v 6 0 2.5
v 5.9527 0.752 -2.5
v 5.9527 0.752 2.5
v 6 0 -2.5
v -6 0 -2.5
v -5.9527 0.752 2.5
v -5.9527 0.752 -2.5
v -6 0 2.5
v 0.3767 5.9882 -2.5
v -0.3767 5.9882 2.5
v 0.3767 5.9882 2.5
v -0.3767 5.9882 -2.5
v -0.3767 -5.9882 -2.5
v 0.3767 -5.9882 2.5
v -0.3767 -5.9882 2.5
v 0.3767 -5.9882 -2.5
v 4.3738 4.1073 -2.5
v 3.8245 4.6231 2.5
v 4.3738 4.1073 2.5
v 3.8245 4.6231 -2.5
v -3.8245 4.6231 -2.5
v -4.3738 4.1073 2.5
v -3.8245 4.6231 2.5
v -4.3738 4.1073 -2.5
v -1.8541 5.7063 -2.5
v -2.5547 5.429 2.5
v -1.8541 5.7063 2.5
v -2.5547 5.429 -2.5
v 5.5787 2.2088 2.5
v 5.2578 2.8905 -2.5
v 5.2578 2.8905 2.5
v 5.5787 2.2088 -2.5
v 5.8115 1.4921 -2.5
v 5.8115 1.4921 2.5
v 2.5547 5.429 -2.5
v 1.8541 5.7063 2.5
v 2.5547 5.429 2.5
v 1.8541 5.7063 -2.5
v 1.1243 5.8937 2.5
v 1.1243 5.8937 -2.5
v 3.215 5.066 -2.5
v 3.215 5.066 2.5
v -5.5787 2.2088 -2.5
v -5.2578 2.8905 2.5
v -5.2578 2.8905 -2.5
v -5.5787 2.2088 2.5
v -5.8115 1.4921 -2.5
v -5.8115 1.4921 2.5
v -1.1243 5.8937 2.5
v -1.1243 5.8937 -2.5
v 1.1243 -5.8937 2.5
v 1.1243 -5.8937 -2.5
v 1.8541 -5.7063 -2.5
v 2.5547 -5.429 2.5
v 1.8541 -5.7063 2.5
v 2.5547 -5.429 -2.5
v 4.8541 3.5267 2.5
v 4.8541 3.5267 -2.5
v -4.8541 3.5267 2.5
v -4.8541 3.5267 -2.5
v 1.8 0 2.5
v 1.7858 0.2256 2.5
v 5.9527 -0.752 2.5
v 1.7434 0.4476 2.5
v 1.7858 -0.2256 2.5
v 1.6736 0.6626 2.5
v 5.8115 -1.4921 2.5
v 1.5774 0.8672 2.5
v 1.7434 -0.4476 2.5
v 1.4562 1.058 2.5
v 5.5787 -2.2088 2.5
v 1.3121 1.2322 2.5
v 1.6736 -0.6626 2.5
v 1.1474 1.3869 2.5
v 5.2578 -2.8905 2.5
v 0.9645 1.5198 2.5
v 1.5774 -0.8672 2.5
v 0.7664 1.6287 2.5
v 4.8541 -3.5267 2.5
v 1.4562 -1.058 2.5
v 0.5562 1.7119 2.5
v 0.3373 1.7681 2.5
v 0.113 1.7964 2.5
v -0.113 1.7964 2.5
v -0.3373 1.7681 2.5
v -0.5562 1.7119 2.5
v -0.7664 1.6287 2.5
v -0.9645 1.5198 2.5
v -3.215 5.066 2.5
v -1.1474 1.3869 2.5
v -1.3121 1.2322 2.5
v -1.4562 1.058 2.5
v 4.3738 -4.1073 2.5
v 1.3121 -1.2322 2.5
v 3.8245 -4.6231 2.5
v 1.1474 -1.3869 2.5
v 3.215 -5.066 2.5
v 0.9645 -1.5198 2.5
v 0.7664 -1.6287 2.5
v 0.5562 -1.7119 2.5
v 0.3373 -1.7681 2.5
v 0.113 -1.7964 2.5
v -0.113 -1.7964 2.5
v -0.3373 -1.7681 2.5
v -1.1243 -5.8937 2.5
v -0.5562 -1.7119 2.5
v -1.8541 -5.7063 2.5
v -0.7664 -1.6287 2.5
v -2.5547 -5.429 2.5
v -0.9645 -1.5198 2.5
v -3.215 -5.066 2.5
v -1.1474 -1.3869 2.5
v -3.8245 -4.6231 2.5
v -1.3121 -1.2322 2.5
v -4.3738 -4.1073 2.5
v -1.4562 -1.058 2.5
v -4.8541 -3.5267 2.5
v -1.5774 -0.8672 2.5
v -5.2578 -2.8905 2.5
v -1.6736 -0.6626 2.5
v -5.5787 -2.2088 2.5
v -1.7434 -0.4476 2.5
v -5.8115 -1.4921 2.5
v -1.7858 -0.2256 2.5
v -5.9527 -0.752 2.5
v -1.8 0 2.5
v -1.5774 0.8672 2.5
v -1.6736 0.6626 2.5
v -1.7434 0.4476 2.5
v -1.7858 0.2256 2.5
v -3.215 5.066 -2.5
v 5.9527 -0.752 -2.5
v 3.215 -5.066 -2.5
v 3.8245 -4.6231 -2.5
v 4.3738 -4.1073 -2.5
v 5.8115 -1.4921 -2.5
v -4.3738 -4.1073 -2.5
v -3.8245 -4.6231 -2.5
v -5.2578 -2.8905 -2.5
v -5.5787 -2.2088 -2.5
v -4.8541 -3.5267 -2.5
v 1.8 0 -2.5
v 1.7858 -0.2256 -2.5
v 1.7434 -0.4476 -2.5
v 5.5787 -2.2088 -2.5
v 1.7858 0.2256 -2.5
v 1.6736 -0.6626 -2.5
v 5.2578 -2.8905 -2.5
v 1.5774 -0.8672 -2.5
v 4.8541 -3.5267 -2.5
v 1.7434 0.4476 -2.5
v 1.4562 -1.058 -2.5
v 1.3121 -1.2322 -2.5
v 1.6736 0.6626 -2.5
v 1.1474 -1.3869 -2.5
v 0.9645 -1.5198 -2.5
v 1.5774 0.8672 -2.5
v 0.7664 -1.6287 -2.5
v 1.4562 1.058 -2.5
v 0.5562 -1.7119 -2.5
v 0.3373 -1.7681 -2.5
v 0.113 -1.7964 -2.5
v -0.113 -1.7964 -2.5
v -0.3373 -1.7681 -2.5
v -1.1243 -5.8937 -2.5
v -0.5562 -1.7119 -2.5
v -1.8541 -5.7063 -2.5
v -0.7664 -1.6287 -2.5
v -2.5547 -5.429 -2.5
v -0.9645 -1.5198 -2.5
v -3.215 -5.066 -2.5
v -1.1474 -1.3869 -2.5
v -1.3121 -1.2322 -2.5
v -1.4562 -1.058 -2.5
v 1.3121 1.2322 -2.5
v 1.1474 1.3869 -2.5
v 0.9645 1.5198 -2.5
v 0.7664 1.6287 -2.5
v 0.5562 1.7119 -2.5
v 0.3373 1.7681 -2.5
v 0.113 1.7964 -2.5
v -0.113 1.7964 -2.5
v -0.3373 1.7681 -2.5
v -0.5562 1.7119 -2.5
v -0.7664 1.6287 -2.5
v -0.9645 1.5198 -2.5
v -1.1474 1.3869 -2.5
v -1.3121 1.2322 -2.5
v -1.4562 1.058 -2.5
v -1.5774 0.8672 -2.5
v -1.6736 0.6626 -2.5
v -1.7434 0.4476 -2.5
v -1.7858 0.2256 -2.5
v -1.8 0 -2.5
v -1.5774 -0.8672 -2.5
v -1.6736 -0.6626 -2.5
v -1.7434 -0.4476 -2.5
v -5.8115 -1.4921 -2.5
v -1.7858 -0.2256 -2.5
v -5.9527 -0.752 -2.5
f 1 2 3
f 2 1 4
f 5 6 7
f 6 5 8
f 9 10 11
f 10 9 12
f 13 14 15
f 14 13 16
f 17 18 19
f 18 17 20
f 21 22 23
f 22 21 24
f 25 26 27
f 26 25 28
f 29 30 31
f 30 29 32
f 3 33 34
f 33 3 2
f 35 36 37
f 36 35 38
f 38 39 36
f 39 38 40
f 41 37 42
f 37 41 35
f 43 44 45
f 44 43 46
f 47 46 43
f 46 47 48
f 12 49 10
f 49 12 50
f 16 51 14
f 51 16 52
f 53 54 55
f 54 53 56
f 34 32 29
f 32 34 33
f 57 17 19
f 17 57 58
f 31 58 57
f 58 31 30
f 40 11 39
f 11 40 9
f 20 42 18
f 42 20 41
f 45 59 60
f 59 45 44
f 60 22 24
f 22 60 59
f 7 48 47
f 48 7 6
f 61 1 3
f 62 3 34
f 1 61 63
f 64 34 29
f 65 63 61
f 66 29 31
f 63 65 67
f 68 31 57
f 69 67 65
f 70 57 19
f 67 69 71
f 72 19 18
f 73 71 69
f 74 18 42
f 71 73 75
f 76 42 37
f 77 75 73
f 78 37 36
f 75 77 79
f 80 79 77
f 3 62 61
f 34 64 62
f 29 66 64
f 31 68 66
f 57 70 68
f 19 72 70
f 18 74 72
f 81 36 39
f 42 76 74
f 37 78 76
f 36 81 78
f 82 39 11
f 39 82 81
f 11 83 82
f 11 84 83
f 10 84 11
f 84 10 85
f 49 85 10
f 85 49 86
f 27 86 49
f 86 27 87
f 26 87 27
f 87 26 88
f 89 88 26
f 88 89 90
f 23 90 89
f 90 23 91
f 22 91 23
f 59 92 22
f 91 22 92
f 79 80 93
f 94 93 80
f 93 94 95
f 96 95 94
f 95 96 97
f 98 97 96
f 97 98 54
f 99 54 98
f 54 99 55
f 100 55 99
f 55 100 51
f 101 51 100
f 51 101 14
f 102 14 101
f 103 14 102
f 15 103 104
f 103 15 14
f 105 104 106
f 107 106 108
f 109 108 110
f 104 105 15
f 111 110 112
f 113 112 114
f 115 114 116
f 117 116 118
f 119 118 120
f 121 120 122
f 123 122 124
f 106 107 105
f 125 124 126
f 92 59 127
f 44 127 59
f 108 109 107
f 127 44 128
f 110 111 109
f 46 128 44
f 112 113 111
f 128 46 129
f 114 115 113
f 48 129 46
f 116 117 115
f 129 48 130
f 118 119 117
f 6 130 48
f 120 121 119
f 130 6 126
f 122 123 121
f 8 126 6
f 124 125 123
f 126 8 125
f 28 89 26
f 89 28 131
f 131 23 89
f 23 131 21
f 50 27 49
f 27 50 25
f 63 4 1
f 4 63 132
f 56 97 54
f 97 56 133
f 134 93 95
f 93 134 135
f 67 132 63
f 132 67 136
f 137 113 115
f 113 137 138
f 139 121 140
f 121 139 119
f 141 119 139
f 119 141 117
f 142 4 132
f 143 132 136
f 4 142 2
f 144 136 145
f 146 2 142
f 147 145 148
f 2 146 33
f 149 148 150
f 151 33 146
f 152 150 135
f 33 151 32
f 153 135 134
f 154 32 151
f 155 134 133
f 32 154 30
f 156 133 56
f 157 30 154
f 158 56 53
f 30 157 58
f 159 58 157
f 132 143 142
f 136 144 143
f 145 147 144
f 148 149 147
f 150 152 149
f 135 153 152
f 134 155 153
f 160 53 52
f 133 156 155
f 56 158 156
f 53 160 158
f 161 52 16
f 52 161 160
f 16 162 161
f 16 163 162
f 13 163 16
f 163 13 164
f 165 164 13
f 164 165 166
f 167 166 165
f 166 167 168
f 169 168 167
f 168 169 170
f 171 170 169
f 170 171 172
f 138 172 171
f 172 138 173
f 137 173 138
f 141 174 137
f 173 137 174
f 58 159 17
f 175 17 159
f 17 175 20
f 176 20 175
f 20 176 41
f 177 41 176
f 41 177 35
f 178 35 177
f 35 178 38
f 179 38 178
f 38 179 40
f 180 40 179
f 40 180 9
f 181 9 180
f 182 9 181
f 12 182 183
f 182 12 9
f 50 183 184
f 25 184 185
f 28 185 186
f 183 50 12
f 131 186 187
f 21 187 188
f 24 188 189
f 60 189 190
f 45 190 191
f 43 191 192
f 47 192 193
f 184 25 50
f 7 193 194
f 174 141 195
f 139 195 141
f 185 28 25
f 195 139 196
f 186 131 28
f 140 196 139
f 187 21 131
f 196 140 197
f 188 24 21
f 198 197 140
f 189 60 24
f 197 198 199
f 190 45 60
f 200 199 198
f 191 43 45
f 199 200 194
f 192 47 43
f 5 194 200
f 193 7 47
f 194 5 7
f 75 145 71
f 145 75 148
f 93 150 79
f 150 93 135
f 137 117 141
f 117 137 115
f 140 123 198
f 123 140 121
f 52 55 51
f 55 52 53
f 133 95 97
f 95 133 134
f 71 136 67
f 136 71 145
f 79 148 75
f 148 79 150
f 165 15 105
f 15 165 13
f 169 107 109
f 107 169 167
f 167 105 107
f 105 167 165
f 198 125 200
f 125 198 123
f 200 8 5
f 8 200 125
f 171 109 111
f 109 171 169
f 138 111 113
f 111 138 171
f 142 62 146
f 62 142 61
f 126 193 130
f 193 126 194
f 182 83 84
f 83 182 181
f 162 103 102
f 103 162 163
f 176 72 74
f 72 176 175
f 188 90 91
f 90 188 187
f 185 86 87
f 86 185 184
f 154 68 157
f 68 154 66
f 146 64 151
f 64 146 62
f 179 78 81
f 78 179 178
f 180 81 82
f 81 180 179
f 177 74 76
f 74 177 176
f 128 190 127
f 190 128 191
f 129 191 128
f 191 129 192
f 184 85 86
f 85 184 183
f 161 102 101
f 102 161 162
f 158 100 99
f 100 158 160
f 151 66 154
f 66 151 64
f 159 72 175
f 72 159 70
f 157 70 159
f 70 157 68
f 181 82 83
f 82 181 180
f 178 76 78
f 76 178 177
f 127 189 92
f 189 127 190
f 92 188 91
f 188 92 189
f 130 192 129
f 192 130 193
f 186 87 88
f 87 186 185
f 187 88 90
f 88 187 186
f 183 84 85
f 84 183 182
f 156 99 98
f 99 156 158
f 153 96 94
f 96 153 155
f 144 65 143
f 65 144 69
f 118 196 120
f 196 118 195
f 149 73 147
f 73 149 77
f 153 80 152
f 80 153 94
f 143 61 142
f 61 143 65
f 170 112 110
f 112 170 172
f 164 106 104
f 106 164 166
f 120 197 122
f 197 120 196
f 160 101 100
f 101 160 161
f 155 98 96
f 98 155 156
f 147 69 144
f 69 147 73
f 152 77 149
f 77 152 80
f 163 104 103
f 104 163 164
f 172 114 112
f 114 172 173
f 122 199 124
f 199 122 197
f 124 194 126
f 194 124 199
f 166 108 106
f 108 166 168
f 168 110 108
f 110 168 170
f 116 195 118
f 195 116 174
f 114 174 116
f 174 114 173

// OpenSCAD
$fn = 50;


difference() {
	union() {
		translate(v = [0, 0, -2.5000000000]) {
			cylinder(h = 5, r = 6.0000000000);
		}
	}
	union() {
		translate(v = [0, 0, -100.0000000000]) {
			cylinder(h = 200, r = 1.8000000000);
		}
	}
}
